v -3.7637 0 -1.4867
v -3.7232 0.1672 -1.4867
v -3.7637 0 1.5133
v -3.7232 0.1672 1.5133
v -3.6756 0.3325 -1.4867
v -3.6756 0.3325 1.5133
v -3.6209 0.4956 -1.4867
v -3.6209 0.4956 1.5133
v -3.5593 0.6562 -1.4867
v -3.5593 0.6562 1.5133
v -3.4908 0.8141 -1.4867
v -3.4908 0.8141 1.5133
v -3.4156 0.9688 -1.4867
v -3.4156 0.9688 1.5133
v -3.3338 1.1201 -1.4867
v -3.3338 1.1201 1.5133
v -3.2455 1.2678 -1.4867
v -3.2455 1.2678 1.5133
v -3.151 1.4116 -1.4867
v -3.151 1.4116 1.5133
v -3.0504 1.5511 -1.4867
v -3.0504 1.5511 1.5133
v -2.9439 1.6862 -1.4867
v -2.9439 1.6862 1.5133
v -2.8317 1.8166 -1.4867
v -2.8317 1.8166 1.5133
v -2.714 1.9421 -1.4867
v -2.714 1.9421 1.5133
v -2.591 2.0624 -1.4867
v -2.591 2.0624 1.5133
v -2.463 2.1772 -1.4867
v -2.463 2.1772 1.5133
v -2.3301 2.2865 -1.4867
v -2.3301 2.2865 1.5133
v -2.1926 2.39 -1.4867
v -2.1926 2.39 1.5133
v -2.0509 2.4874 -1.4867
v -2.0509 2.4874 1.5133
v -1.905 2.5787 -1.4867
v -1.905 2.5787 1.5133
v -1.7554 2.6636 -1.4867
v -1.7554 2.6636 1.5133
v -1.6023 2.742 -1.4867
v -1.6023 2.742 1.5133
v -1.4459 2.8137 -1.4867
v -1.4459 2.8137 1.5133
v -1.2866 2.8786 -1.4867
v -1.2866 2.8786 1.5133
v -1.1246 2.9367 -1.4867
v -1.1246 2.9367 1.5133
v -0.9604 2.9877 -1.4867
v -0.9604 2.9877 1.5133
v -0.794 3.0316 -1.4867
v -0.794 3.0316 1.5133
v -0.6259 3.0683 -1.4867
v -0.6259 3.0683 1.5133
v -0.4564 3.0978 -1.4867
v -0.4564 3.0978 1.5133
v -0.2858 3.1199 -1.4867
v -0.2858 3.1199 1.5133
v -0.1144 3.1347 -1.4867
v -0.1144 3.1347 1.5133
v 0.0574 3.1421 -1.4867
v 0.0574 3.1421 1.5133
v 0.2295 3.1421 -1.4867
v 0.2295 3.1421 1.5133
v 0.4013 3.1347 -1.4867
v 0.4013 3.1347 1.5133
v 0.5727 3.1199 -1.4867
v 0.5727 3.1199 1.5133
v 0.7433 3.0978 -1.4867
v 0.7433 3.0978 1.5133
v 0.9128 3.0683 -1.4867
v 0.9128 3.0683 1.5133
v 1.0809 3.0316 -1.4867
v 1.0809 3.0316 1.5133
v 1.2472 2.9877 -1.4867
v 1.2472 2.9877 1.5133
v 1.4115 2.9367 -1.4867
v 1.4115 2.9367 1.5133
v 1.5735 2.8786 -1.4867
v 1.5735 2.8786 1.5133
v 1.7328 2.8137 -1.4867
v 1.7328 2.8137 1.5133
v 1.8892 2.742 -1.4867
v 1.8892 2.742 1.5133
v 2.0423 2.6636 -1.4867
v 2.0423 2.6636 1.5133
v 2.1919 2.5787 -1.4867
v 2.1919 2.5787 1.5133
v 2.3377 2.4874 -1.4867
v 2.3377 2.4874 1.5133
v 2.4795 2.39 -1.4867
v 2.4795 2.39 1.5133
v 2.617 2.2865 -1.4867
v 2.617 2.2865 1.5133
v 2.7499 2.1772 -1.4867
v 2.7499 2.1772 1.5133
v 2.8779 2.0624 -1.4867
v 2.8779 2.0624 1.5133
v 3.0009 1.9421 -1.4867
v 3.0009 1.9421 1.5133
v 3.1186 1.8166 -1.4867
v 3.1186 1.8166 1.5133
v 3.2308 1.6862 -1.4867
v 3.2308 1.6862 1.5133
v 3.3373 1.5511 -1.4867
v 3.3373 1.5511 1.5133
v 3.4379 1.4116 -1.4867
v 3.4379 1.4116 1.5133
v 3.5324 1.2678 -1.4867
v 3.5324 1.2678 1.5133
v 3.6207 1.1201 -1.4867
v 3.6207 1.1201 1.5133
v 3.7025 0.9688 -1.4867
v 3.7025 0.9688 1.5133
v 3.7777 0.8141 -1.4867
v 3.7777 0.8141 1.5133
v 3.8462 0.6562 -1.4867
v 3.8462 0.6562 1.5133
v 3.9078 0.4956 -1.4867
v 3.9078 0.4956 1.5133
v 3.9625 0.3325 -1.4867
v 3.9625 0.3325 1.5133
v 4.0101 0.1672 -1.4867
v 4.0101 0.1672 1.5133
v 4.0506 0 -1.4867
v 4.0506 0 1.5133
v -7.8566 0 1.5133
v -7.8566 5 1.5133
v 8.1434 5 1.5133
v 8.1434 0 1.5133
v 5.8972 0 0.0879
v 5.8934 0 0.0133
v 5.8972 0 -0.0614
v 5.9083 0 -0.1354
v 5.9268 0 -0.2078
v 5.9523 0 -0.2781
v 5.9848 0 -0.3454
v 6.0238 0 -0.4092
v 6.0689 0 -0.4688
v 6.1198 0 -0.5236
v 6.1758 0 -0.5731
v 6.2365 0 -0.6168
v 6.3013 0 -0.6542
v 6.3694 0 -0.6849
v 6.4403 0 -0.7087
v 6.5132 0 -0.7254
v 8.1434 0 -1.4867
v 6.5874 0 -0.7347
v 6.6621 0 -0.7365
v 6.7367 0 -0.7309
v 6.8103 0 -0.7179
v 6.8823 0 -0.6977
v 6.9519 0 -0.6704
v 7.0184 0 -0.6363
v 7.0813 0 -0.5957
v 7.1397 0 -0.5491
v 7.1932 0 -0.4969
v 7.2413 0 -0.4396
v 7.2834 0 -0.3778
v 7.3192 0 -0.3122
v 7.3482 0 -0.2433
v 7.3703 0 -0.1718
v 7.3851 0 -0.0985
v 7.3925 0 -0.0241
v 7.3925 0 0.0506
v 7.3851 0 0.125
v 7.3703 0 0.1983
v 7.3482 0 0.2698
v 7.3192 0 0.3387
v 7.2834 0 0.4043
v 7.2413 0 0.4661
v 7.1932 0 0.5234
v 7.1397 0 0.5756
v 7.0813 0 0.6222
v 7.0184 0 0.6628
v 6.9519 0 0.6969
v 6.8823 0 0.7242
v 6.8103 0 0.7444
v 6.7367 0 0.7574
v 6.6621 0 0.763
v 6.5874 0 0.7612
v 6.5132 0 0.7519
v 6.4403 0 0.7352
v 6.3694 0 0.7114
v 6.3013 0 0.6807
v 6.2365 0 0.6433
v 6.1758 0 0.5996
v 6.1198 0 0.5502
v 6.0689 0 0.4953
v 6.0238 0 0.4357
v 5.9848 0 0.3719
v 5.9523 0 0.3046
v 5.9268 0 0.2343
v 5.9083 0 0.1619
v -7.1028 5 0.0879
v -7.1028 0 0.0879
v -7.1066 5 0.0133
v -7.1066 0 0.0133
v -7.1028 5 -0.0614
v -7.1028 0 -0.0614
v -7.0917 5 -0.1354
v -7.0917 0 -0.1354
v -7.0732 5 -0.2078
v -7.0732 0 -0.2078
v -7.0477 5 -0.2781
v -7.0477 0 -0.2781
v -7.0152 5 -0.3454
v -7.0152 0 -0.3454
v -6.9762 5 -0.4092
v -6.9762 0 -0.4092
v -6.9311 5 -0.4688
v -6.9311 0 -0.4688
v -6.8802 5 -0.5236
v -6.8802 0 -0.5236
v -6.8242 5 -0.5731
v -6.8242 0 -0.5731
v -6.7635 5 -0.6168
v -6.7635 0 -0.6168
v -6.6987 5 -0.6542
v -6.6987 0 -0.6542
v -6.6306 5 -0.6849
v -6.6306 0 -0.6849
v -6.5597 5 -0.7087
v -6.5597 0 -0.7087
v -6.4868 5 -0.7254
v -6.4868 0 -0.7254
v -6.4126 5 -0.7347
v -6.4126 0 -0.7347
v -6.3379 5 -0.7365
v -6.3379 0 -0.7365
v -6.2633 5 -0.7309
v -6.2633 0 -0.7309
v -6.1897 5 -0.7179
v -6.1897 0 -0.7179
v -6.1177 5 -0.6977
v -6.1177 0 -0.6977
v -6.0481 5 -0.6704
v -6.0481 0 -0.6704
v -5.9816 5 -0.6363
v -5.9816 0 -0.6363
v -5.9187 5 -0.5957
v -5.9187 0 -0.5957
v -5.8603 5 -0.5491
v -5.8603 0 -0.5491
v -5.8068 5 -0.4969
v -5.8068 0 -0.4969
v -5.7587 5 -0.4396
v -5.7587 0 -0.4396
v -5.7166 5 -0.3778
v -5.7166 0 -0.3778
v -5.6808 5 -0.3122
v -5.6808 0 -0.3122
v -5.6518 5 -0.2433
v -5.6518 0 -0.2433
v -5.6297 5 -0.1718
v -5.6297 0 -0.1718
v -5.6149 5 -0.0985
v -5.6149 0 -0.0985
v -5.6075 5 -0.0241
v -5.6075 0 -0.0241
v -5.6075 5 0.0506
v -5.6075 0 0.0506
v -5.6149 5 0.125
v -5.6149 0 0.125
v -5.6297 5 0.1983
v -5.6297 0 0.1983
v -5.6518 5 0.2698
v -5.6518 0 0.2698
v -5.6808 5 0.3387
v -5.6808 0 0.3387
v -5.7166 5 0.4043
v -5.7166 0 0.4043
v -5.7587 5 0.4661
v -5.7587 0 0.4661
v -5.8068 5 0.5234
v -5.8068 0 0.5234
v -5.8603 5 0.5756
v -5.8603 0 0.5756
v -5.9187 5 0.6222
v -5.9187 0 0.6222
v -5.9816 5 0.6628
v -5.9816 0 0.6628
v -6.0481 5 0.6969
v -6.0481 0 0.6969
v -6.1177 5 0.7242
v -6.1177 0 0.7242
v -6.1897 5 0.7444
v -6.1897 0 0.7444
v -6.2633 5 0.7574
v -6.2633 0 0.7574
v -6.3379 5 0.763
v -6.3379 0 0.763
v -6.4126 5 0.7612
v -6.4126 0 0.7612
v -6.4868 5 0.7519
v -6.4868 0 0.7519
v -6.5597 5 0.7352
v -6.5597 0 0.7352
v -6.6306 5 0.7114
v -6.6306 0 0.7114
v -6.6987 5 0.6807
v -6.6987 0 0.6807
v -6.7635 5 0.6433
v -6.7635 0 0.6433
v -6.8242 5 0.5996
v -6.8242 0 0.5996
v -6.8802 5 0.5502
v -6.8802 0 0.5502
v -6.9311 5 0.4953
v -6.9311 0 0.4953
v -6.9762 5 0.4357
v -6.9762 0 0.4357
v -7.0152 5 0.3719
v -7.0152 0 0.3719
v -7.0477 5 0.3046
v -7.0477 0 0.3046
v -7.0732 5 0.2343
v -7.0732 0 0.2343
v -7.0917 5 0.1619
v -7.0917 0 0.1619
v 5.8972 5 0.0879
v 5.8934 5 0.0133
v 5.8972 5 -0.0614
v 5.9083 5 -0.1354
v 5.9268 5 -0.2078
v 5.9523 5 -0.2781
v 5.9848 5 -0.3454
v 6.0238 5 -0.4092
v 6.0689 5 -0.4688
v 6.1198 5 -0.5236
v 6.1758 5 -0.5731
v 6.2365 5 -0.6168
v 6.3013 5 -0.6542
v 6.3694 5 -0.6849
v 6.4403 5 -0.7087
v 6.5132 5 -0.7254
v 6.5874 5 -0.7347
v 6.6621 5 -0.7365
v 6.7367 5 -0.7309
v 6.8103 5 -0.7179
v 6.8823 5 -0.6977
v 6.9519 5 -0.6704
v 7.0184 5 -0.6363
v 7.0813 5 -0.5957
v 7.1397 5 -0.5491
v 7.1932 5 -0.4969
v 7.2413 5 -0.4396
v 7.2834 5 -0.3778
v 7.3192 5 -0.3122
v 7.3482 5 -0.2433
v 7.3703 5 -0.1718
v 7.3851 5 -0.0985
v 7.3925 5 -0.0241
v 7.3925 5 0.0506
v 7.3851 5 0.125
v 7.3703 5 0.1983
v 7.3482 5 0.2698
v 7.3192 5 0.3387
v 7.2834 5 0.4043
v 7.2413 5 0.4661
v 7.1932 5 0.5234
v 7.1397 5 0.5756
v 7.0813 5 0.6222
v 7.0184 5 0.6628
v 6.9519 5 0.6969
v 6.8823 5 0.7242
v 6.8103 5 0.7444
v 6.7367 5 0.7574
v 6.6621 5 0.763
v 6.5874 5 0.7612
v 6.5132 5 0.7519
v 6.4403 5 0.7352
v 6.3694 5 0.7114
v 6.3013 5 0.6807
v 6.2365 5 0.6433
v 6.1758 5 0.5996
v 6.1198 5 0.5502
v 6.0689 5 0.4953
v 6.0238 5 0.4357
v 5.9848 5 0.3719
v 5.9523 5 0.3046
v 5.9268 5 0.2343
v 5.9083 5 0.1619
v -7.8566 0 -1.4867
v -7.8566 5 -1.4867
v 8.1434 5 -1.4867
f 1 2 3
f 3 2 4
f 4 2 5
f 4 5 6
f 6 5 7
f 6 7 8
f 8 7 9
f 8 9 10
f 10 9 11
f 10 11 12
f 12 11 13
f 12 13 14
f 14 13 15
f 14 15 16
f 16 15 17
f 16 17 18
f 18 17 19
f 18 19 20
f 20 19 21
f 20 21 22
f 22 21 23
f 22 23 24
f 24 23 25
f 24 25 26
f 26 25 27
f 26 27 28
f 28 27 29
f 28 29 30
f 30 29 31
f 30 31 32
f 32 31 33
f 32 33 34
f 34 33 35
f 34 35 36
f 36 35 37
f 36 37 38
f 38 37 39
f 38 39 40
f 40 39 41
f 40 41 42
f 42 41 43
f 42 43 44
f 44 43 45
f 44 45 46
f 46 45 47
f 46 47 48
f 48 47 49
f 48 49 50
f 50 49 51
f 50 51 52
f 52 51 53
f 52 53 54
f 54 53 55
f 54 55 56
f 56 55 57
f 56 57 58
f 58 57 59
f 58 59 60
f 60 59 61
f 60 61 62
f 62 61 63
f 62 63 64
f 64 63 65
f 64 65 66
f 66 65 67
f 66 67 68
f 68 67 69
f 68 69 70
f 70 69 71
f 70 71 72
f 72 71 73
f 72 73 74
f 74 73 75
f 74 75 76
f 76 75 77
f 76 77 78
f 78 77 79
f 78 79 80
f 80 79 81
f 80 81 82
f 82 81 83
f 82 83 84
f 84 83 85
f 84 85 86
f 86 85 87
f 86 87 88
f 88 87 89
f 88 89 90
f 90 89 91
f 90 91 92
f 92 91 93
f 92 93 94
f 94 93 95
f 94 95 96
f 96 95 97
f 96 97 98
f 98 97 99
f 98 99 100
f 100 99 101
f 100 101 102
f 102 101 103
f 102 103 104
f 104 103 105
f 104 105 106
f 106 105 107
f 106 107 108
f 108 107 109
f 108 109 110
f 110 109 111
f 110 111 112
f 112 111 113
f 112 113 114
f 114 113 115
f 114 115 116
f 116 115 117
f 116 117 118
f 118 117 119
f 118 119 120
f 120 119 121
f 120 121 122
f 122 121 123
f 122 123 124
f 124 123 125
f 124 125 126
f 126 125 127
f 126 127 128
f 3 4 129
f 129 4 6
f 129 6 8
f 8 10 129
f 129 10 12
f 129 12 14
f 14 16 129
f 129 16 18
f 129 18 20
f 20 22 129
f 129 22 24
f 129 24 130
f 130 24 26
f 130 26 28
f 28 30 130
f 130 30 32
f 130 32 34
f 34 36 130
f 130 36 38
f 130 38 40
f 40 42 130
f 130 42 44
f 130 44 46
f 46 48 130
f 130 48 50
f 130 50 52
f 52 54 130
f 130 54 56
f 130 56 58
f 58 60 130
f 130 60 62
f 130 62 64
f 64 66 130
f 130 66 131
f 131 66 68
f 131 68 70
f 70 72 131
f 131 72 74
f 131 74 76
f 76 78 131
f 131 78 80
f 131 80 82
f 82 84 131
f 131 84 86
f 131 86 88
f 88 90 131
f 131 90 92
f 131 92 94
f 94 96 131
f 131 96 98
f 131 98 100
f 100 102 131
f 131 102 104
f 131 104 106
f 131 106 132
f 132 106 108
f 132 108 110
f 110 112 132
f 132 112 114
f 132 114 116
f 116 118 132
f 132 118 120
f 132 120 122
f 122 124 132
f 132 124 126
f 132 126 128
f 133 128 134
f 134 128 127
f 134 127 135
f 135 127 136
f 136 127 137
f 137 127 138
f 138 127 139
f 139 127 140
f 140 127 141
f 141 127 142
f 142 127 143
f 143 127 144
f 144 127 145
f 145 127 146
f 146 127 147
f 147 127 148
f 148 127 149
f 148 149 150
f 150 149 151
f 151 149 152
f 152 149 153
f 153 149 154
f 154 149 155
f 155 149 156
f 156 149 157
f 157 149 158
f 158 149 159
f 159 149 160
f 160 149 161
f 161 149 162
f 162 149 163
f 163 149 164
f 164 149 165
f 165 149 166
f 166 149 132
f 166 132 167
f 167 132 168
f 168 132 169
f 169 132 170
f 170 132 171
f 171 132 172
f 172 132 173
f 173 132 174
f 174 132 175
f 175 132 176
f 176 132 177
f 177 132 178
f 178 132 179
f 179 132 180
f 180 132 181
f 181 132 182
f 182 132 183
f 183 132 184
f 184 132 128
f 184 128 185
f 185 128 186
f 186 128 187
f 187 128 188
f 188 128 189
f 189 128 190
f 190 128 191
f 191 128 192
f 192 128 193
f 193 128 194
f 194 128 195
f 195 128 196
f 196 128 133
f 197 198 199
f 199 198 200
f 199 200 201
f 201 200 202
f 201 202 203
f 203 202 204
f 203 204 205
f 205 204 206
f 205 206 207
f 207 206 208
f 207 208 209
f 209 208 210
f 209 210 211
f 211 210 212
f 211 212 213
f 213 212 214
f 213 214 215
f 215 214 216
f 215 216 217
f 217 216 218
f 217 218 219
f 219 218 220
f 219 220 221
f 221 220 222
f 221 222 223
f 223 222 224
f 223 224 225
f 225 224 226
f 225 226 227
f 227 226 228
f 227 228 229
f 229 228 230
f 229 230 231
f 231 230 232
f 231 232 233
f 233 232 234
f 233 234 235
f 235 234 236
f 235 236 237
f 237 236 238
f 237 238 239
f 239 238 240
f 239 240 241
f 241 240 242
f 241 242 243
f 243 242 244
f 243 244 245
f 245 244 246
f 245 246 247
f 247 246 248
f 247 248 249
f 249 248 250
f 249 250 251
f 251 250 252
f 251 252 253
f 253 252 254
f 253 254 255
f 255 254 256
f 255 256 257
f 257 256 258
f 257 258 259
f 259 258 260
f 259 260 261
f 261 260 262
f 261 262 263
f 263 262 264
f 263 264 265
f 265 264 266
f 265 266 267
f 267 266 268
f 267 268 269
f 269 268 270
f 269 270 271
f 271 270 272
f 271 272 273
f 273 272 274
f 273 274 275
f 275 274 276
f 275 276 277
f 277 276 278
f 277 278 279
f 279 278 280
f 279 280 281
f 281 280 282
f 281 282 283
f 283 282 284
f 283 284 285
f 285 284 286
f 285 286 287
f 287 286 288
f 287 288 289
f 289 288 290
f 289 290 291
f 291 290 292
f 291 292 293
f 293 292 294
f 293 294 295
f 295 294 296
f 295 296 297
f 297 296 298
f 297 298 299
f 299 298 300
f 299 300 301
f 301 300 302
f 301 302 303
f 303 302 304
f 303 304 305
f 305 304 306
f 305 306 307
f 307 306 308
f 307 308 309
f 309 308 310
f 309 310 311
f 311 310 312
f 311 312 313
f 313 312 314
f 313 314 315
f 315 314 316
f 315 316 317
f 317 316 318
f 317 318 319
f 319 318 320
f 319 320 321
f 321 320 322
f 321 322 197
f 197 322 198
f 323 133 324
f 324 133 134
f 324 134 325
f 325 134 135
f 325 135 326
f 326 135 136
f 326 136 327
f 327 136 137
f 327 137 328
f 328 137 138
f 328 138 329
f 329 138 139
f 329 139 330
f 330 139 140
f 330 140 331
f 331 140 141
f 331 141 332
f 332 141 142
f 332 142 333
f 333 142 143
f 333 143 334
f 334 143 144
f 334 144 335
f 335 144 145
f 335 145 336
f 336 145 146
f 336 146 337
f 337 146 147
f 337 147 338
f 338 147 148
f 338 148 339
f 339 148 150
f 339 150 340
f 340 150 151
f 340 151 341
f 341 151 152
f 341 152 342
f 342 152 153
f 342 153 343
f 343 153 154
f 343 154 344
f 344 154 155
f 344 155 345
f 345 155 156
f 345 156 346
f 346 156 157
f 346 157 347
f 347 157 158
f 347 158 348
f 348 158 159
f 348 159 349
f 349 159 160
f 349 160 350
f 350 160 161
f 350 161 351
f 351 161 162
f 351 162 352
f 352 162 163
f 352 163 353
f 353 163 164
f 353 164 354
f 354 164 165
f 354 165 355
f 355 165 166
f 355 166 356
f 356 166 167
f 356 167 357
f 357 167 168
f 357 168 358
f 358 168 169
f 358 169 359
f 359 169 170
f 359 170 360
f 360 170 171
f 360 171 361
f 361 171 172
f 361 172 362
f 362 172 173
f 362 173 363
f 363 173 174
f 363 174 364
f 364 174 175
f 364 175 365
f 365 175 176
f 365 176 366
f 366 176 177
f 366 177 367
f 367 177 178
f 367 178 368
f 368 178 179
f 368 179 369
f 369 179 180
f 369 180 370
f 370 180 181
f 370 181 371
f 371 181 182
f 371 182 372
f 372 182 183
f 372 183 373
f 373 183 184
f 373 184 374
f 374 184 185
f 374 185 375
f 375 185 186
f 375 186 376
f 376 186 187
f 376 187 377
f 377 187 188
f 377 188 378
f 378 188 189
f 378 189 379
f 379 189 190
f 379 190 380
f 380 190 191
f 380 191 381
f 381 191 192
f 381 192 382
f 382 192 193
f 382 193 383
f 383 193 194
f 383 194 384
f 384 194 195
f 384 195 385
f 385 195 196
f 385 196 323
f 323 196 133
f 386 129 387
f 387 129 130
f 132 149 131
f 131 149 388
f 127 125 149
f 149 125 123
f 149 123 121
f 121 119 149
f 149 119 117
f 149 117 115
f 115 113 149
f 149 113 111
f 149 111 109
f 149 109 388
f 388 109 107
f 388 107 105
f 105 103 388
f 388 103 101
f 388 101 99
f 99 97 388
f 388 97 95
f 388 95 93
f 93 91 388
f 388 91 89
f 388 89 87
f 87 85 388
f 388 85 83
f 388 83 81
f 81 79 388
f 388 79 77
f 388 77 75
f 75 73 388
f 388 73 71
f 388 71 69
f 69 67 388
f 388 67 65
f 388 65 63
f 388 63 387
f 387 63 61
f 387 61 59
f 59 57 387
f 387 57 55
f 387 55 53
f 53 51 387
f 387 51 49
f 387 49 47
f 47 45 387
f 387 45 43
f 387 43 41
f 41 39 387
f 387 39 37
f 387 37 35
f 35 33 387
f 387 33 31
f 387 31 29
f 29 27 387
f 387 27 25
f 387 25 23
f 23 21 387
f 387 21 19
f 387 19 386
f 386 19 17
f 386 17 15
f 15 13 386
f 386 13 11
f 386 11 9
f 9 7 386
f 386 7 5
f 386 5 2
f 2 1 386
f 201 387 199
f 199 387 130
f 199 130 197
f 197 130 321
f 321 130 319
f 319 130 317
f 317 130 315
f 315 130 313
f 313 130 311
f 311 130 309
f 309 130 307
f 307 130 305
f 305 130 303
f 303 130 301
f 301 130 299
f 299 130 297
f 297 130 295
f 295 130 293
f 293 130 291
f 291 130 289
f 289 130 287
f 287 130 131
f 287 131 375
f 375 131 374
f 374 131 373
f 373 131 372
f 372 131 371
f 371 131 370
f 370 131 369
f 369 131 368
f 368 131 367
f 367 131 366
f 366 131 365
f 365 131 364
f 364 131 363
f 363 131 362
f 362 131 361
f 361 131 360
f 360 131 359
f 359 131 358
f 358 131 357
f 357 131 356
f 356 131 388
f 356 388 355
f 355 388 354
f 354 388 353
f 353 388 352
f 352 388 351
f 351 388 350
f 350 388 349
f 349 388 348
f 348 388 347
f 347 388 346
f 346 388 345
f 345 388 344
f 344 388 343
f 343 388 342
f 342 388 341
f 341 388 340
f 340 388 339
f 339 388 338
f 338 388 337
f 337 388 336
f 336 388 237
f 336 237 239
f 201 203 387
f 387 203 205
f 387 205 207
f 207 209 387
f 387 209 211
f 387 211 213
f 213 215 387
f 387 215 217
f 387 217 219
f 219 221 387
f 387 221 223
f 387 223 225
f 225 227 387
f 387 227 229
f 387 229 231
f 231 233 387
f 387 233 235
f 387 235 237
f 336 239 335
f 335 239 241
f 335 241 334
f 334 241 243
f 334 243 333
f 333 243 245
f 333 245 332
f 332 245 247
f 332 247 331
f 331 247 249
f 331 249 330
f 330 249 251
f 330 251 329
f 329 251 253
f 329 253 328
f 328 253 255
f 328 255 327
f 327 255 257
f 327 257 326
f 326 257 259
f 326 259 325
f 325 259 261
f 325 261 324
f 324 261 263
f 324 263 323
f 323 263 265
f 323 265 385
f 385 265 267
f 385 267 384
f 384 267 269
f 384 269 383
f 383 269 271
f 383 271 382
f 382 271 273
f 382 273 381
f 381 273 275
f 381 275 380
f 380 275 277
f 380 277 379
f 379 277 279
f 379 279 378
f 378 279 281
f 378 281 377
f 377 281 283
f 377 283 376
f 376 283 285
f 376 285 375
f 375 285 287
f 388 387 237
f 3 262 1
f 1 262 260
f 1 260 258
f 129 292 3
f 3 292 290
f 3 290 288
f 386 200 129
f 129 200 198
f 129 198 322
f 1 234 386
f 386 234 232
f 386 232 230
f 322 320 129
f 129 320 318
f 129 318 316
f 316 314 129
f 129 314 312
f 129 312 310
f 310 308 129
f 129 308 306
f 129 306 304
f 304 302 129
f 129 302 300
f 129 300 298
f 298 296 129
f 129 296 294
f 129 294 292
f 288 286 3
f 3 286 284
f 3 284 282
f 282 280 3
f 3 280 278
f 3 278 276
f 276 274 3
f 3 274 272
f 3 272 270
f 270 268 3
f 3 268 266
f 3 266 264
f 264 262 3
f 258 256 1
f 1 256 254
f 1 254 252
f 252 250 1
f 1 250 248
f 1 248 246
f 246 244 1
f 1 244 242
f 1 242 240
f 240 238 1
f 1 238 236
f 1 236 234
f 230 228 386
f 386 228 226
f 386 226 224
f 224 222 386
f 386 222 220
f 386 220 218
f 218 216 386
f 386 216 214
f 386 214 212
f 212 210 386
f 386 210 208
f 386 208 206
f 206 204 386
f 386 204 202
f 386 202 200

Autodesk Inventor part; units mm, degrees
ref_plane "YZ Plane" through (0, 0, 0) normal (1, 0, 0) x (0, 1, 0)
ref_plane "XZ Plane" through (0, 0, 0) normal (0, 1, 0) x (-1, 0, 0)
ref_plane "XY Plane" through (0, 0, 0) normal (0, 0, 1) x (1, 0, 0)
sketch "Эскиз1" plane through (0, 0, 0) normal (0, 1, 0) x (-1, 0, 0)
  line L0 (-4.0164, 1.5133) -> (-8.1434, 1.5133)
  circle A0 centre (-6.6434, 0.0133) radius 0.75
  line L1 (-4.0164, -1.4867) -> (-8.1434, -1.4867)
  line L2 (-4.0164, 1.5133) -> (-4.0164, -1.4867)
  line L3 (-4.0164, 1.5133) -> (-8.1434, 1.5133)
  line L4 (-8.1434, 1.5133) -> (-8.1434, -1.4867)
  circle A1 centre (6.3566, 0.0133) radius 0.75
  line L5 (3.7295, -1.4867) -> (3.7295, 1.5133)
  line L6 (7.8566, -1.4867) -> (3.7295, -1.4867)
  line L7 (7.8566, 1.5133) -> (7.8566, -1.4867)
  line L8 (3.7295, 1.5133) -> (7.8566, 1.5133)
  line L9 (-4.0164, 1.5133) -> (-4.0164, -1.4867)
  line L10 (3.7295, -1.4867) -> (-4.0164, -1.4867)
  line L11 (3.7295, -1.4867) -> (3.7295, 1.5133)
  line L12 (-4.0164, 1.5133) -> (3.7295, 1.5133)
  point P0 (0, 0)
  point P1 (0, 0)
extrude "Выдавливание1" add sketch "Эскиз1" along normal blind 5
sketch "Эскиз2" plane through (-7.8566, 0, 1.5133) normal (0, 0, 1) x (1, 0, 0)
  circle A0 centre (8, -0.857) radius 4
  line L0 (0, 0) -> (16, 0) projected
  dimension "d2" = 8
  dimension "d6" = 0.857
  dimension "d7" = 8
extrude "Выдавливание2" cut sketch "Эскиз2" against normal through all
properties part number "КВ33.044.208 - Зажим вакумной присоски"
